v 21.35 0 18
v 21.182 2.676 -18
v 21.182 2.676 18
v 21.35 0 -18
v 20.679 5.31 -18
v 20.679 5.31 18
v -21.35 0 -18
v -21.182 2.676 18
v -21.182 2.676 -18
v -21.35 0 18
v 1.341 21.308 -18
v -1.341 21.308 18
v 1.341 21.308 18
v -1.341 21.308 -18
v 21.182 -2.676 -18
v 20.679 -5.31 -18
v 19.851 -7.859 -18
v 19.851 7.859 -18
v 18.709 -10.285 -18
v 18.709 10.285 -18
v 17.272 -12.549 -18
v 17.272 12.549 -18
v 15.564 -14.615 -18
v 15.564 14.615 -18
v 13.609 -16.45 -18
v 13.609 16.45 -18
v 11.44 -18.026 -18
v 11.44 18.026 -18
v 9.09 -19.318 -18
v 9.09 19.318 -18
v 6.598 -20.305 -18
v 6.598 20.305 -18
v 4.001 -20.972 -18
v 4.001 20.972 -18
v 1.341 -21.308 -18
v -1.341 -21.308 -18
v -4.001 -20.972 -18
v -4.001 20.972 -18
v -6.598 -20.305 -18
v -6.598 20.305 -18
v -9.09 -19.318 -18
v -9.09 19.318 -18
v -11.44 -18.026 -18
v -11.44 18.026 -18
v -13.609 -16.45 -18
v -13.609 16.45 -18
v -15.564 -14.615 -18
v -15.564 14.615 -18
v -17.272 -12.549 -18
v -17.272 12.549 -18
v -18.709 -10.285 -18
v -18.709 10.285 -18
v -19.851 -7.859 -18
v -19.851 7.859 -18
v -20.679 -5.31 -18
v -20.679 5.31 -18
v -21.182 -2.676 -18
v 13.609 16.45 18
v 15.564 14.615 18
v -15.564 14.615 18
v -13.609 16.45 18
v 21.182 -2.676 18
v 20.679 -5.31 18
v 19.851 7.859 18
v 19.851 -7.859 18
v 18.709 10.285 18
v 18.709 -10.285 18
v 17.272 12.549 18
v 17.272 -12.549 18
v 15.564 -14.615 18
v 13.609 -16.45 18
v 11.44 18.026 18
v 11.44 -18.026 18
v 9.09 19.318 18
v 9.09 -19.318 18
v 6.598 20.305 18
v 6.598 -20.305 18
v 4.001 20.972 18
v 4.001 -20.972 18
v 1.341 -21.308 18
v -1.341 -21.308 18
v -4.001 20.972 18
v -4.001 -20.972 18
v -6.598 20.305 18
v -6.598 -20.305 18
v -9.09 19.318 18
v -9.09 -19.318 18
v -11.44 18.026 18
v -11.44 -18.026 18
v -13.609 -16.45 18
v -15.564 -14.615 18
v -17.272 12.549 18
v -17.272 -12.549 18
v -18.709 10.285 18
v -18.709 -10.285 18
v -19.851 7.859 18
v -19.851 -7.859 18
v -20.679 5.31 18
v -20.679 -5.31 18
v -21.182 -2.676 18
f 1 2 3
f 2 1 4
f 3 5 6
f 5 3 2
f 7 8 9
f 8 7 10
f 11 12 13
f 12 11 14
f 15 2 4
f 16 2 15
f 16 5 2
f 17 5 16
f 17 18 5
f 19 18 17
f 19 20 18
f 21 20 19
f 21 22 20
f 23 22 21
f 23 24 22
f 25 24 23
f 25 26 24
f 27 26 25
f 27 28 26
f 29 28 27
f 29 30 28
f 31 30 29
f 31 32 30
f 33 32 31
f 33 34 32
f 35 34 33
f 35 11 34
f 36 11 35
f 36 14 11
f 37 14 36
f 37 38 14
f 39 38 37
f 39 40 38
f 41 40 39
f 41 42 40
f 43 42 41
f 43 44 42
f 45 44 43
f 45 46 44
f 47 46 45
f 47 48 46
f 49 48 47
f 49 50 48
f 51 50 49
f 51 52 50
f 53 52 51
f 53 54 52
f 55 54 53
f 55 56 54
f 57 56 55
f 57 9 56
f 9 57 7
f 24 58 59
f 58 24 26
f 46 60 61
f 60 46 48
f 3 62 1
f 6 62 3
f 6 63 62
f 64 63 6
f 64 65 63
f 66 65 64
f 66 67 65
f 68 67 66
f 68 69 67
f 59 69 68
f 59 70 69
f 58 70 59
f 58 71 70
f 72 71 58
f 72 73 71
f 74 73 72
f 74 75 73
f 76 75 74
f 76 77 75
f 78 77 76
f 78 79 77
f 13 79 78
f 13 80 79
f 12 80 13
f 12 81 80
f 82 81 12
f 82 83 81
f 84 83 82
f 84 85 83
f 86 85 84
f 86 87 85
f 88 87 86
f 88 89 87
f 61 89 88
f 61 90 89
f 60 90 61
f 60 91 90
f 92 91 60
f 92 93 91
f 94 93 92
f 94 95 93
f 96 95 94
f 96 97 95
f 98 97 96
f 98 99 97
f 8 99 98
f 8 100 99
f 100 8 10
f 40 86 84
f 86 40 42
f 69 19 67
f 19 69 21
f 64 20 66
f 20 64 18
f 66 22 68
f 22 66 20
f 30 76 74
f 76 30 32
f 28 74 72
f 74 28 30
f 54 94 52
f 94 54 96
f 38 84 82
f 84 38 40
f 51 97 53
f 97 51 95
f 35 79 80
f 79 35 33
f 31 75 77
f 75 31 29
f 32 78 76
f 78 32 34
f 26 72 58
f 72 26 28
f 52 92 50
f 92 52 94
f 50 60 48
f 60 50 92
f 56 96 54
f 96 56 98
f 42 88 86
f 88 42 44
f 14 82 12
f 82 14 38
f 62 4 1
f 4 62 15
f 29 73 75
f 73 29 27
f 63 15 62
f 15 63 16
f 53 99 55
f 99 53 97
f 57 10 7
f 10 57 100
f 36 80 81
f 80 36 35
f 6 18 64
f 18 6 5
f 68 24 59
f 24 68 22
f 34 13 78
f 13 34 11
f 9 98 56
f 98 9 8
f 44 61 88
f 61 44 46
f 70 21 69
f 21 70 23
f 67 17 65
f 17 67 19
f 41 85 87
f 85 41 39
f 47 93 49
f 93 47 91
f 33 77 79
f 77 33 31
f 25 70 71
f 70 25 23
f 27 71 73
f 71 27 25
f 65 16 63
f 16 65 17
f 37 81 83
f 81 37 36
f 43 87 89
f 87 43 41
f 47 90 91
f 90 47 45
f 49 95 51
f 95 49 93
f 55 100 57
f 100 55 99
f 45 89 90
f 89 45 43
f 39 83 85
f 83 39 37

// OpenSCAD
$fn = 50;


difference() {
	union() {
		translate(v = [0, 0, -18.0000000000]) {
			cylinder(h = 36, r = 21.3500000000);
		}
	}
	union() {
		translate(v = [0, 0, -100.0000000000]) {
			cylinder(h = 200, r = 0);
		}
	}
}
